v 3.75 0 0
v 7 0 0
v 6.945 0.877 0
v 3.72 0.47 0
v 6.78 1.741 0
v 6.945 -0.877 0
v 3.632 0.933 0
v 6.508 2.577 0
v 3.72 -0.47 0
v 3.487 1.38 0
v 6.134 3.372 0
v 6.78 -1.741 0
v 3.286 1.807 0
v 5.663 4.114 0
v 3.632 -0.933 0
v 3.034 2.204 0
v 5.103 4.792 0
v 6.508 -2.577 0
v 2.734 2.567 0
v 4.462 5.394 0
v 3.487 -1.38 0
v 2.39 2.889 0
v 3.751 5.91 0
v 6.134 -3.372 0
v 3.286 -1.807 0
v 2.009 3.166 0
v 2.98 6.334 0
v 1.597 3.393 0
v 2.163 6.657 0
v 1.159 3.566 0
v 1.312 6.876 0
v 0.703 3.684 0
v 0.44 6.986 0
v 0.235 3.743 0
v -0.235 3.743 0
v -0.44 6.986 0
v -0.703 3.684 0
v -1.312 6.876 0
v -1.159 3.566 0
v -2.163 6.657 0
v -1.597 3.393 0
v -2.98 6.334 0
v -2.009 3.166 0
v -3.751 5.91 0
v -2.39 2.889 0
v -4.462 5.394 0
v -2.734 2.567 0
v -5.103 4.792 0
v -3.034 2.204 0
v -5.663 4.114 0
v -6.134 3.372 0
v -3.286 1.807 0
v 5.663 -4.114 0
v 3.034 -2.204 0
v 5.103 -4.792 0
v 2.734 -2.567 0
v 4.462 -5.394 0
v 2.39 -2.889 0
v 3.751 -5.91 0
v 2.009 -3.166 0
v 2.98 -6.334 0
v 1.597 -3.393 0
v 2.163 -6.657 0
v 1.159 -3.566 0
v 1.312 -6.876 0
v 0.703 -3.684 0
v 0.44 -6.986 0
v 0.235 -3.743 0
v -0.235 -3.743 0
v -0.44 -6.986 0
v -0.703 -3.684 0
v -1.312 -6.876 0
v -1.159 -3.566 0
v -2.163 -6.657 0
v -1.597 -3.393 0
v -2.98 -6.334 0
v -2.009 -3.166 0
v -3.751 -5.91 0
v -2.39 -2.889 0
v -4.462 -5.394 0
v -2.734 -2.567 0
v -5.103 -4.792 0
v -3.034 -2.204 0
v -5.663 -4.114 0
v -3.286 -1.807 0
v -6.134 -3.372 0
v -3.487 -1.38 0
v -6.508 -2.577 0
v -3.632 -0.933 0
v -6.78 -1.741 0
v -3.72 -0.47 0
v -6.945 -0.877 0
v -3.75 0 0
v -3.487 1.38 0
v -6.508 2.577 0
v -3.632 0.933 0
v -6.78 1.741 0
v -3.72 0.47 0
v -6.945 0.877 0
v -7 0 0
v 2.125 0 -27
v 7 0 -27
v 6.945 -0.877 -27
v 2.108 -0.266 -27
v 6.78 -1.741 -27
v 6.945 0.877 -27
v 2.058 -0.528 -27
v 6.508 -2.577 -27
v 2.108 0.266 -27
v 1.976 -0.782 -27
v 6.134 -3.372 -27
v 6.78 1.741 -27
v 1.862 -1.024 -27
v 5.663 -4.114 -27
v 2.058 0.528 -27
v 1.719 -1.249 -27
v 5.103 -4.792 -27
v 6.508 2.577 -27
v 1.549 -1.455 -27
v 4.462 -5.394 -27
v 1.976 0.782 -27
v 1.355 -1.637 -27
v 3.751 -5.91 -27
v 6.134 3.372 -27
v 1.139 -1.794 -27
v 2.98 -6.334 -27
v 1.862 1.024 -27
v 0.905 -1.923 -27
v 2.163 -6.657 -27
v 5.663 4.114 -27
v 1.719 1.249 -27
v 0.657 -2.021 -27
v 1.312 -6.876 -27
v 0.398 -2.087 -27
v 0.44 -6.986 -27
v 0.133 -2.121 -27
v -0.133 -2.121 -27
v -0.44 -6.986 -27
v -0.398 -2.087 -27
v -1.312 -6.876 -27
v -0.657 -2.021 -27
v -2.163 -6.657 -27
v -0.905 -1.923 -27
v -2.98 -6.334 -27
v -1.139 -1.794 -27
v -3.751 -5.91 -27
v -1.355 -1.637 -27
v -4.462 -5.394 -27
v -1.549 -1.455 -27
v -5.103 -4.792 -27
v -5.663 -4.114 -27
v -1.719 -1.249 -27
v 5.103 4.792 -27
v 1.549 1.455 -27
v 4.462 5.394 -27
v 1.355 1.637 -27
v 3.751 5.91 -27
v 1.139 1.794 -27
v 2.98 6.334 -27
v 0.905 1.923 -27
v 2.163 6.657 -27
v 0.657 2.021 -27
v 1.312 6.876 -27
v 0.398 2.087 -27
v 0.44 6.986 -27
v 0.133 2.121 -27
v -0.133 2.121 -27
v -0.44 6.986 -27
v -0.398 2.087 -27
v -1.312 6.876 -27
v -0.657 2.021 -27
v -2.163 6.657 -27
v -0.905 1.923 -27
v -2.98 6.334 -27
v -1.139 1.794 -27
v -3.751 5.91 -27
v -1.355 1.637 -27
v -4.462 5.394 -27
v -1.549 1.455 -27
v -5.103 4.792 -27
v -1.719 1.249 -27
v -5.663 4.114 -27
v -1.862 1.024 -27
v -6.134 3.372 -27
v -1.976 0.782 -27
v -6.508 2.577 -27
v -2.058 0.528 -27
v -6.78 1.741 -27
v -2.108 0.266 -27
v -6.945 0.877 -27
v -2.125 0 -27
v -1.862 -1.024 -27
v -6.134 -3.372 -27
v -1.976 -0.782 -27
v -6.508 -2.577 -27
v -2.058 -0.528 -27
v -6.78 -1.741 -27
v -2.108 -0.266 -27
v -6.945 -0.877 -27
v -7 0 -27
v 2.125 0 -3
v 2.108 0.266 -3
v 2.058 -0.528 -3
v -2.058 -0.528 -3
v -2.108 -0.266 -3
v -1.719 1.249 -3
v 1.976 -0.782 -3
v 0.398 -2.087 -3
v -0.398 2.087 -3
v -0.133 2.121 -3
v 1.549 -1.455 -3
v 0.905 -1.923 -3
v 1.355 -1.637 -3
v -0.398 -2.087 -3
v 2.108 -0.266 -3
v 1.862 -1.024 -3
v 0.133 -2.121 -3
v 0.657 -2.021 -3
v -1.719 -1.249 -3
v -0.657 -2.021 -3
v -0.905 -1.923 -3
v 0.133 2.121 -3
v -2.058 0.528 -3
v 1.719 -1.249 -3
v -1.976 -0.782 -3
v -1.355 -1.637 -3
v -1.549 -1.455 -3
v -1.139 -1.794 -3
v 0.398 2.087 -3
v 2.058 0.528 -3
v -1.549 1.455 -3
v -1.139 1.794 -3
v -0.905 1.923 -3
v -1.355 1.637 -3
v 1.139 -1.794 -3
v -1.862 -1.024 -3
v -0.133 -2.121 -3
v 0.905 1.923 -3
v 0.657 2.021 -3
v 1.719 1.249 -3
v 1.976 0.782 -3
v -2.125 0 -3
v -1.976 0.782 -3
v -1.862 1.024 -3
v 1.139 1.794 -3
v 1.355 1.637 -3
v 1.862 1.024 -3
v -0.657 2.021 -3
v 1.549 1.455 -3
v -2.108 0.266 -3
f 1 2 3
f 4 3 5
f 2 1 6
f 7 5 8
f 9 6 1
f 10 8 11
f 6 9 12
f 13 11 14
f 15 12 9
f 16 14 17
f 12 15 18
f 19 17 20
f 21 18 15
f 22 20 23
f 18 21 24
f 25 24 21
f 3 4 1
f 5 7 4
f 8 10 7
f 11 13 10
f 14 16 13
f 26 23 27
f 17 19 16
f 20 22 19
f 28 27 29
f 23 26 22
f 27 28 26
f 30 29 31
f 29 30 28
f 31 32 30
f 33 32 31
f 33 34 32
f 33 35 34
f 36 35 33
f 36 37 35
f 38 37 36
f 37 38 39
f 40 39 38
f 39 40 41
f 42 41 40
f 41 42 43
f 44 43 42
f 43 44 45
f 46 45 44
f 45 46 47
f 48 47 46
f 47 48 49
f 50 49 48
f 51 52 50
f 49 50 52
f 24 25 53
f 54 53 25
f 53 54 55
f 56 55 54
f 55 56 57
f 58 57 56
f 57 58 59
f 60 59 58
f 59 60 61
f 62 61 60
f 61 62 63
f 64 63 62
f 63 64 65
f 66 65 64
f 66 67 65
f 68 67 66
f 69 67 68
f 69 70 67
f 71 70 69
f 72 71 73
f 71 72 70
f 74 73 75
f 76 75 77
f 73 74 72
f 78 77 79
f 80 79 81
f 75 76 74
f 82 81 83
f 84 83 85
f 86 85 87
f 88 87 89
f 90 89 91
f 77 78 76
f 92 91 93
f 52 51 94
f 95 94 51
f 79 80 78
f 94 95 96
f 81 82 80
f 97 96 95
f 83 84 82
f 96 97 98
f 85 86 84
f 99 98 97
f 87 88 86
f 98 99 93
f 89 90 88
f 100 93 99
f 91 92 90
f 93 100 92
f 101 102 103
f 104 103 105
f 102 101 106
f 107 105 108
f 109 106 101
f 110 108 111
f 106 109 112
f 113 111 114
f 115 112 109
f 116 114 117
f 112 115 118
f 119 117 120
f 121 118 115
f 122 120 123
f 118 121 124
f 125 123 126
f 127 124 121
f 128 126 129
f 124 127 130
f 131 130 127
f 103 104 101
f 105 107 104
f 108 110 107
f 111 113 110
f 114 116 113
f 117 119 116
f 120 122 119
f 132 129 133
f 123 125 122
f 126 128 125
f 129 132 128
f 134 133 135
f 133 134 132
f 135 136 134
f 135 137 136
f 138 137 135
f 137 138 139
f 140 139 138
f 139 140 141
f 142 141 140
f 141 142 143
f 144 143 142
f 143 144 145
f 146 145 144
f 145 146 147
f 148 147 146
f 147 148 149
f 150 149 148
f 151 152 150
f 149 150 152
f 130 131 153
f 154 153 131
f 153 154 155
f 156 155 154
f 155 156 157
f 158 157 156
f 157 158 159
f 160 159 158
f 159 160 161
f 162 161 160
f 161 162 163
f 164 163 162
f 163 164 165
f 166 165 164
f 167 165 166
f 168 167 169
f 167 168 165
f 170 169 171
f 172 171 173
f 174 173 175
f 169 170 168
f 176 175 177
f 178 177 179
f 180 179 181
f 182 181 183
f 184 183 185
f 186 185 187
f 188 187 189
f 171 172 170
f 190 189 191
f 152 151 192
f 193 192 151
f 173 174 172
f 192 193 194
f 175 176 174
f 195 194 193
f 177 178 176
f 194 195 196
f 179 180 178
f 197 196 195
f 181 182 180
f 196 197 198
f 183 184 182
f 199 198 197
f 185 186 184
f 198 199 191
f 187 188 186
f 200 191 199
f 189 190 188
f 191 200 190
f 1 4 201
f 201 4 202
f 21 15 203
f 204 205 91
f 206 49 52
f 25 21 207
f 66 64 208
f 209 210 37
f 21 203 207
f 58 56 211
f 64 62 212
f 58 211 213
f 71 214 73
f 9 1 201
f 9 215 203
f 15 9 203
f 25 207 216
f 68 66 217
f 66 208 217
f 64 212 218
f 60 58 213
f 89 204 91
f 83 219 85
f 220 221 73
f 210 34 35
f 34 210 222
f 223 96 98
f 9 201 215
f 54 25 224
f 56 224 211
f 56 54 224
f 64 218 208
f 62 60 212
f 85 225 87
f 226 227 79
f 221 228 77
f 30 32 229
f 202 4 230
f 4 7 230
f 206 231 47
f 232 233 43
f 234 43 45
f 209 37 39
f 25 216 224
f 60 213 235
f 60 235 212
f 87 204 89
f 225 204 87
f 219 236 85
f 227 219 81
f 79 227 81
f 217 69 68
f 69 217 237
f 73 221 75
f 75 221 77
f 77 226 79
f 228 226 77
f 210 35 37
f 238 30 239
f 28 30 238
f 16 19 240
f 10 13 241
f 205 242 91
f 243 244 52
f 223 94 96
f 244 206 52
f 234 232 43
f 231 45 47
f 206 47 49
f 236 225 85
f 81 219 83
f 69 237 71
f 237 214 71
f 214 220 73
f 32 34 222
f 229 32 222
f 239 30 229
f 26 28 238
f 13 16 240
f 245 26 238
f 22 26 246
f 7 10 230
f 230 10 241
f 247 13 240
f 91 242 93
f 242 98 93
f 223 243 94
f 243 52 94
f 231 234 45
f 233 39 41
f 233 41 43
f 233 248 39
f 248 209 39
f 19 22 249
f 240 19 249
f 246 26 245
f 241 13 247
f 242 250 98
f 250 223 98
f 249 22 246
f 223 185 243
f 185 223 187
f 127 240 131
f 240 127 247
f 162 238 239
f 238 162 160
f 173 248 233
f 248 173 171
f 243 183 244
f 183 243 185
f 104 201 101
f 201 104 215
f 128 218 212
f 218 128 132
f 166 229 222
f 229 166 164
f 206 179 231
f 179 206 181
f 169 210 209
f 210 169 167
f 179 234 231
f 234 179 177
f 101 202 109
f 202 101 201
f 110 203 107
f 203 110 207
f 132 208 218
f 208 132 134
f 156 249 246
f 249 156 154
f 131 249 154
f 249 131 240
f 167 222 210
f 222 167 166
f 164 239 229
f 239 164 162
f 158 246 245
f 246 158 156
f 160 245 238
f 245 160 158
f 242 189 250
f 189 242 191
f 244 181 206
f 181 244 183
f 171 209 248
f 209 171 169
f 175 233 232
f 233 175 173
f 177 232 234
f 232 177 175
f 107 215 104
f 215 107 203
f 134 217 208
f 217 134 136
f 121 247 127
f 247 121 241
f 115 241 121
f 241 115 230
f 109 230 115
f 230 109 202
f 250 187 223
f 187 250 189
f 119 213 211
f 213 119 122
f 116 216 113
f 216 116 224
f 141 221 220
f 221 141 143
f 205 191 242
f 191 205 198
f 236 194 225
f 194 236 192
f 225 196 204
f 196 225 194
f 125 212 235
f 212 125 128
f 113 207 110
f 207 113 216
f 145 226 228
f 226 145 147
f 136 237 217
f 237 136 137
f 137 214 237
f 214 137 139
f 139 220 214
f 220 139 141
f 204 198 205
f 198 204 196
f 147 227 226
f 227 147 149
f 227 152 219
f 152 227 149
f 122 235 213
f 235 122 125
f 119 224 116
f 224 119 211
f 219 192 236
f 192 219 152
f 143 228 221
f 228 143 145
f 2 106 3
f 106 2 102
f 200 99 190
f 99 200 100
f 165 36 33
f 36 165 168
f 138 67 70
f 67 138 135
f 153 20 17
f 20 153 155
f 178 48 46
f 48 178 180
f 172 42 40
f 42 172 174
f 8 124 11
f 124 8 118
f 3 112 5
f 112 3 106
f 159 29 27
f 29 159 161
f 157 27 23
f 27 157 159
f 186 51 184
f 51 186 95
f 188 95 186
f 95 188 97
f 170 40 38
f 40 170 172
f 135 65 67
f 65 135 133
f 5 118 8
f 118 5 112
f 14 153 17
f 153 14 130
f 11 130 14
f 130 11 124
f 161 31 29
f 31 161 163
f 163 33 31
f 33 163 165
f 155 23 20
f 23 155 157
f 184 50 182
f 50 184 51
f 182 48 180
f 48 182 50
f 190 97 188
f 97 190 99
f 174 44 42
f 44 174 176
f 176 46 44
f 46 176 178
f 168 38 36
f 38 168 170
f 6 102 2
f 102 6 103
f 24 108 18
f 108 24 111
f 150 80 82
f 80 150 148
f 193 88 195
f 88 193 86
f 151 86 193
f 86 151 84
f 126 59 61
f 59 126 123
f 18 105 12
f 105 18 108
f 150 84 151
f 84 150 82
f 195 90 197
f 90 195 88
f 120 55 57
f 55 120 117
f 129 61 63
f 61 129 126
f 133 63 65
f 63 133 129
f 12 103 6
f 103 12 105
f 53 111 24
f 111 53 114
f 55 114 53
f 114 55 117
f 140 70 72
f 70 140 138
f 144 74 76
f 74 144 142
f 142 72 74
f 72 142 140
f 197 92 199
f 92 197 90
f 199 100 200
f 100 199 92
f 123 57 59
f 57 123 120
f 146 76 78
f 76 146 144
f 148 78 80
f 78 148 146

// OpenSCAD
$fn = 50;


difference() {
	union() {
		translate(v = [0, 0, -27.0000000000]) {
			cylinder(h = 27, r = 7.0000000000);
		}
		cylinder(h = 0, r = 16.0000000000);
	}
	union() {
		translate(v = [0, 0, 0]) {
			rotate(a = [0, 0, 0]) {
				difference() {
					union() {
						#translate(v = [0, 0, -27.0000000000]) {
							cylinder(h = 27, r = 2.0000000000);
						}
						#translate(v = [0, 0, -3]) {
							cylinder(h = 3, r = 7.0000000000, r1 = 2.1250000000, r2 = 3.7500000000);
						}
						#translate(v = [0, 0, -27.0000000000]) {
							cylinder(h = 27, r = 2.1250000000);
						}
						#translate(v = [0, 0, -27.0000000000]) {
							cylinder(h = 27, r = 2.0000000000);
						}
					}
					union();
				}
			}
		}
	}
}
